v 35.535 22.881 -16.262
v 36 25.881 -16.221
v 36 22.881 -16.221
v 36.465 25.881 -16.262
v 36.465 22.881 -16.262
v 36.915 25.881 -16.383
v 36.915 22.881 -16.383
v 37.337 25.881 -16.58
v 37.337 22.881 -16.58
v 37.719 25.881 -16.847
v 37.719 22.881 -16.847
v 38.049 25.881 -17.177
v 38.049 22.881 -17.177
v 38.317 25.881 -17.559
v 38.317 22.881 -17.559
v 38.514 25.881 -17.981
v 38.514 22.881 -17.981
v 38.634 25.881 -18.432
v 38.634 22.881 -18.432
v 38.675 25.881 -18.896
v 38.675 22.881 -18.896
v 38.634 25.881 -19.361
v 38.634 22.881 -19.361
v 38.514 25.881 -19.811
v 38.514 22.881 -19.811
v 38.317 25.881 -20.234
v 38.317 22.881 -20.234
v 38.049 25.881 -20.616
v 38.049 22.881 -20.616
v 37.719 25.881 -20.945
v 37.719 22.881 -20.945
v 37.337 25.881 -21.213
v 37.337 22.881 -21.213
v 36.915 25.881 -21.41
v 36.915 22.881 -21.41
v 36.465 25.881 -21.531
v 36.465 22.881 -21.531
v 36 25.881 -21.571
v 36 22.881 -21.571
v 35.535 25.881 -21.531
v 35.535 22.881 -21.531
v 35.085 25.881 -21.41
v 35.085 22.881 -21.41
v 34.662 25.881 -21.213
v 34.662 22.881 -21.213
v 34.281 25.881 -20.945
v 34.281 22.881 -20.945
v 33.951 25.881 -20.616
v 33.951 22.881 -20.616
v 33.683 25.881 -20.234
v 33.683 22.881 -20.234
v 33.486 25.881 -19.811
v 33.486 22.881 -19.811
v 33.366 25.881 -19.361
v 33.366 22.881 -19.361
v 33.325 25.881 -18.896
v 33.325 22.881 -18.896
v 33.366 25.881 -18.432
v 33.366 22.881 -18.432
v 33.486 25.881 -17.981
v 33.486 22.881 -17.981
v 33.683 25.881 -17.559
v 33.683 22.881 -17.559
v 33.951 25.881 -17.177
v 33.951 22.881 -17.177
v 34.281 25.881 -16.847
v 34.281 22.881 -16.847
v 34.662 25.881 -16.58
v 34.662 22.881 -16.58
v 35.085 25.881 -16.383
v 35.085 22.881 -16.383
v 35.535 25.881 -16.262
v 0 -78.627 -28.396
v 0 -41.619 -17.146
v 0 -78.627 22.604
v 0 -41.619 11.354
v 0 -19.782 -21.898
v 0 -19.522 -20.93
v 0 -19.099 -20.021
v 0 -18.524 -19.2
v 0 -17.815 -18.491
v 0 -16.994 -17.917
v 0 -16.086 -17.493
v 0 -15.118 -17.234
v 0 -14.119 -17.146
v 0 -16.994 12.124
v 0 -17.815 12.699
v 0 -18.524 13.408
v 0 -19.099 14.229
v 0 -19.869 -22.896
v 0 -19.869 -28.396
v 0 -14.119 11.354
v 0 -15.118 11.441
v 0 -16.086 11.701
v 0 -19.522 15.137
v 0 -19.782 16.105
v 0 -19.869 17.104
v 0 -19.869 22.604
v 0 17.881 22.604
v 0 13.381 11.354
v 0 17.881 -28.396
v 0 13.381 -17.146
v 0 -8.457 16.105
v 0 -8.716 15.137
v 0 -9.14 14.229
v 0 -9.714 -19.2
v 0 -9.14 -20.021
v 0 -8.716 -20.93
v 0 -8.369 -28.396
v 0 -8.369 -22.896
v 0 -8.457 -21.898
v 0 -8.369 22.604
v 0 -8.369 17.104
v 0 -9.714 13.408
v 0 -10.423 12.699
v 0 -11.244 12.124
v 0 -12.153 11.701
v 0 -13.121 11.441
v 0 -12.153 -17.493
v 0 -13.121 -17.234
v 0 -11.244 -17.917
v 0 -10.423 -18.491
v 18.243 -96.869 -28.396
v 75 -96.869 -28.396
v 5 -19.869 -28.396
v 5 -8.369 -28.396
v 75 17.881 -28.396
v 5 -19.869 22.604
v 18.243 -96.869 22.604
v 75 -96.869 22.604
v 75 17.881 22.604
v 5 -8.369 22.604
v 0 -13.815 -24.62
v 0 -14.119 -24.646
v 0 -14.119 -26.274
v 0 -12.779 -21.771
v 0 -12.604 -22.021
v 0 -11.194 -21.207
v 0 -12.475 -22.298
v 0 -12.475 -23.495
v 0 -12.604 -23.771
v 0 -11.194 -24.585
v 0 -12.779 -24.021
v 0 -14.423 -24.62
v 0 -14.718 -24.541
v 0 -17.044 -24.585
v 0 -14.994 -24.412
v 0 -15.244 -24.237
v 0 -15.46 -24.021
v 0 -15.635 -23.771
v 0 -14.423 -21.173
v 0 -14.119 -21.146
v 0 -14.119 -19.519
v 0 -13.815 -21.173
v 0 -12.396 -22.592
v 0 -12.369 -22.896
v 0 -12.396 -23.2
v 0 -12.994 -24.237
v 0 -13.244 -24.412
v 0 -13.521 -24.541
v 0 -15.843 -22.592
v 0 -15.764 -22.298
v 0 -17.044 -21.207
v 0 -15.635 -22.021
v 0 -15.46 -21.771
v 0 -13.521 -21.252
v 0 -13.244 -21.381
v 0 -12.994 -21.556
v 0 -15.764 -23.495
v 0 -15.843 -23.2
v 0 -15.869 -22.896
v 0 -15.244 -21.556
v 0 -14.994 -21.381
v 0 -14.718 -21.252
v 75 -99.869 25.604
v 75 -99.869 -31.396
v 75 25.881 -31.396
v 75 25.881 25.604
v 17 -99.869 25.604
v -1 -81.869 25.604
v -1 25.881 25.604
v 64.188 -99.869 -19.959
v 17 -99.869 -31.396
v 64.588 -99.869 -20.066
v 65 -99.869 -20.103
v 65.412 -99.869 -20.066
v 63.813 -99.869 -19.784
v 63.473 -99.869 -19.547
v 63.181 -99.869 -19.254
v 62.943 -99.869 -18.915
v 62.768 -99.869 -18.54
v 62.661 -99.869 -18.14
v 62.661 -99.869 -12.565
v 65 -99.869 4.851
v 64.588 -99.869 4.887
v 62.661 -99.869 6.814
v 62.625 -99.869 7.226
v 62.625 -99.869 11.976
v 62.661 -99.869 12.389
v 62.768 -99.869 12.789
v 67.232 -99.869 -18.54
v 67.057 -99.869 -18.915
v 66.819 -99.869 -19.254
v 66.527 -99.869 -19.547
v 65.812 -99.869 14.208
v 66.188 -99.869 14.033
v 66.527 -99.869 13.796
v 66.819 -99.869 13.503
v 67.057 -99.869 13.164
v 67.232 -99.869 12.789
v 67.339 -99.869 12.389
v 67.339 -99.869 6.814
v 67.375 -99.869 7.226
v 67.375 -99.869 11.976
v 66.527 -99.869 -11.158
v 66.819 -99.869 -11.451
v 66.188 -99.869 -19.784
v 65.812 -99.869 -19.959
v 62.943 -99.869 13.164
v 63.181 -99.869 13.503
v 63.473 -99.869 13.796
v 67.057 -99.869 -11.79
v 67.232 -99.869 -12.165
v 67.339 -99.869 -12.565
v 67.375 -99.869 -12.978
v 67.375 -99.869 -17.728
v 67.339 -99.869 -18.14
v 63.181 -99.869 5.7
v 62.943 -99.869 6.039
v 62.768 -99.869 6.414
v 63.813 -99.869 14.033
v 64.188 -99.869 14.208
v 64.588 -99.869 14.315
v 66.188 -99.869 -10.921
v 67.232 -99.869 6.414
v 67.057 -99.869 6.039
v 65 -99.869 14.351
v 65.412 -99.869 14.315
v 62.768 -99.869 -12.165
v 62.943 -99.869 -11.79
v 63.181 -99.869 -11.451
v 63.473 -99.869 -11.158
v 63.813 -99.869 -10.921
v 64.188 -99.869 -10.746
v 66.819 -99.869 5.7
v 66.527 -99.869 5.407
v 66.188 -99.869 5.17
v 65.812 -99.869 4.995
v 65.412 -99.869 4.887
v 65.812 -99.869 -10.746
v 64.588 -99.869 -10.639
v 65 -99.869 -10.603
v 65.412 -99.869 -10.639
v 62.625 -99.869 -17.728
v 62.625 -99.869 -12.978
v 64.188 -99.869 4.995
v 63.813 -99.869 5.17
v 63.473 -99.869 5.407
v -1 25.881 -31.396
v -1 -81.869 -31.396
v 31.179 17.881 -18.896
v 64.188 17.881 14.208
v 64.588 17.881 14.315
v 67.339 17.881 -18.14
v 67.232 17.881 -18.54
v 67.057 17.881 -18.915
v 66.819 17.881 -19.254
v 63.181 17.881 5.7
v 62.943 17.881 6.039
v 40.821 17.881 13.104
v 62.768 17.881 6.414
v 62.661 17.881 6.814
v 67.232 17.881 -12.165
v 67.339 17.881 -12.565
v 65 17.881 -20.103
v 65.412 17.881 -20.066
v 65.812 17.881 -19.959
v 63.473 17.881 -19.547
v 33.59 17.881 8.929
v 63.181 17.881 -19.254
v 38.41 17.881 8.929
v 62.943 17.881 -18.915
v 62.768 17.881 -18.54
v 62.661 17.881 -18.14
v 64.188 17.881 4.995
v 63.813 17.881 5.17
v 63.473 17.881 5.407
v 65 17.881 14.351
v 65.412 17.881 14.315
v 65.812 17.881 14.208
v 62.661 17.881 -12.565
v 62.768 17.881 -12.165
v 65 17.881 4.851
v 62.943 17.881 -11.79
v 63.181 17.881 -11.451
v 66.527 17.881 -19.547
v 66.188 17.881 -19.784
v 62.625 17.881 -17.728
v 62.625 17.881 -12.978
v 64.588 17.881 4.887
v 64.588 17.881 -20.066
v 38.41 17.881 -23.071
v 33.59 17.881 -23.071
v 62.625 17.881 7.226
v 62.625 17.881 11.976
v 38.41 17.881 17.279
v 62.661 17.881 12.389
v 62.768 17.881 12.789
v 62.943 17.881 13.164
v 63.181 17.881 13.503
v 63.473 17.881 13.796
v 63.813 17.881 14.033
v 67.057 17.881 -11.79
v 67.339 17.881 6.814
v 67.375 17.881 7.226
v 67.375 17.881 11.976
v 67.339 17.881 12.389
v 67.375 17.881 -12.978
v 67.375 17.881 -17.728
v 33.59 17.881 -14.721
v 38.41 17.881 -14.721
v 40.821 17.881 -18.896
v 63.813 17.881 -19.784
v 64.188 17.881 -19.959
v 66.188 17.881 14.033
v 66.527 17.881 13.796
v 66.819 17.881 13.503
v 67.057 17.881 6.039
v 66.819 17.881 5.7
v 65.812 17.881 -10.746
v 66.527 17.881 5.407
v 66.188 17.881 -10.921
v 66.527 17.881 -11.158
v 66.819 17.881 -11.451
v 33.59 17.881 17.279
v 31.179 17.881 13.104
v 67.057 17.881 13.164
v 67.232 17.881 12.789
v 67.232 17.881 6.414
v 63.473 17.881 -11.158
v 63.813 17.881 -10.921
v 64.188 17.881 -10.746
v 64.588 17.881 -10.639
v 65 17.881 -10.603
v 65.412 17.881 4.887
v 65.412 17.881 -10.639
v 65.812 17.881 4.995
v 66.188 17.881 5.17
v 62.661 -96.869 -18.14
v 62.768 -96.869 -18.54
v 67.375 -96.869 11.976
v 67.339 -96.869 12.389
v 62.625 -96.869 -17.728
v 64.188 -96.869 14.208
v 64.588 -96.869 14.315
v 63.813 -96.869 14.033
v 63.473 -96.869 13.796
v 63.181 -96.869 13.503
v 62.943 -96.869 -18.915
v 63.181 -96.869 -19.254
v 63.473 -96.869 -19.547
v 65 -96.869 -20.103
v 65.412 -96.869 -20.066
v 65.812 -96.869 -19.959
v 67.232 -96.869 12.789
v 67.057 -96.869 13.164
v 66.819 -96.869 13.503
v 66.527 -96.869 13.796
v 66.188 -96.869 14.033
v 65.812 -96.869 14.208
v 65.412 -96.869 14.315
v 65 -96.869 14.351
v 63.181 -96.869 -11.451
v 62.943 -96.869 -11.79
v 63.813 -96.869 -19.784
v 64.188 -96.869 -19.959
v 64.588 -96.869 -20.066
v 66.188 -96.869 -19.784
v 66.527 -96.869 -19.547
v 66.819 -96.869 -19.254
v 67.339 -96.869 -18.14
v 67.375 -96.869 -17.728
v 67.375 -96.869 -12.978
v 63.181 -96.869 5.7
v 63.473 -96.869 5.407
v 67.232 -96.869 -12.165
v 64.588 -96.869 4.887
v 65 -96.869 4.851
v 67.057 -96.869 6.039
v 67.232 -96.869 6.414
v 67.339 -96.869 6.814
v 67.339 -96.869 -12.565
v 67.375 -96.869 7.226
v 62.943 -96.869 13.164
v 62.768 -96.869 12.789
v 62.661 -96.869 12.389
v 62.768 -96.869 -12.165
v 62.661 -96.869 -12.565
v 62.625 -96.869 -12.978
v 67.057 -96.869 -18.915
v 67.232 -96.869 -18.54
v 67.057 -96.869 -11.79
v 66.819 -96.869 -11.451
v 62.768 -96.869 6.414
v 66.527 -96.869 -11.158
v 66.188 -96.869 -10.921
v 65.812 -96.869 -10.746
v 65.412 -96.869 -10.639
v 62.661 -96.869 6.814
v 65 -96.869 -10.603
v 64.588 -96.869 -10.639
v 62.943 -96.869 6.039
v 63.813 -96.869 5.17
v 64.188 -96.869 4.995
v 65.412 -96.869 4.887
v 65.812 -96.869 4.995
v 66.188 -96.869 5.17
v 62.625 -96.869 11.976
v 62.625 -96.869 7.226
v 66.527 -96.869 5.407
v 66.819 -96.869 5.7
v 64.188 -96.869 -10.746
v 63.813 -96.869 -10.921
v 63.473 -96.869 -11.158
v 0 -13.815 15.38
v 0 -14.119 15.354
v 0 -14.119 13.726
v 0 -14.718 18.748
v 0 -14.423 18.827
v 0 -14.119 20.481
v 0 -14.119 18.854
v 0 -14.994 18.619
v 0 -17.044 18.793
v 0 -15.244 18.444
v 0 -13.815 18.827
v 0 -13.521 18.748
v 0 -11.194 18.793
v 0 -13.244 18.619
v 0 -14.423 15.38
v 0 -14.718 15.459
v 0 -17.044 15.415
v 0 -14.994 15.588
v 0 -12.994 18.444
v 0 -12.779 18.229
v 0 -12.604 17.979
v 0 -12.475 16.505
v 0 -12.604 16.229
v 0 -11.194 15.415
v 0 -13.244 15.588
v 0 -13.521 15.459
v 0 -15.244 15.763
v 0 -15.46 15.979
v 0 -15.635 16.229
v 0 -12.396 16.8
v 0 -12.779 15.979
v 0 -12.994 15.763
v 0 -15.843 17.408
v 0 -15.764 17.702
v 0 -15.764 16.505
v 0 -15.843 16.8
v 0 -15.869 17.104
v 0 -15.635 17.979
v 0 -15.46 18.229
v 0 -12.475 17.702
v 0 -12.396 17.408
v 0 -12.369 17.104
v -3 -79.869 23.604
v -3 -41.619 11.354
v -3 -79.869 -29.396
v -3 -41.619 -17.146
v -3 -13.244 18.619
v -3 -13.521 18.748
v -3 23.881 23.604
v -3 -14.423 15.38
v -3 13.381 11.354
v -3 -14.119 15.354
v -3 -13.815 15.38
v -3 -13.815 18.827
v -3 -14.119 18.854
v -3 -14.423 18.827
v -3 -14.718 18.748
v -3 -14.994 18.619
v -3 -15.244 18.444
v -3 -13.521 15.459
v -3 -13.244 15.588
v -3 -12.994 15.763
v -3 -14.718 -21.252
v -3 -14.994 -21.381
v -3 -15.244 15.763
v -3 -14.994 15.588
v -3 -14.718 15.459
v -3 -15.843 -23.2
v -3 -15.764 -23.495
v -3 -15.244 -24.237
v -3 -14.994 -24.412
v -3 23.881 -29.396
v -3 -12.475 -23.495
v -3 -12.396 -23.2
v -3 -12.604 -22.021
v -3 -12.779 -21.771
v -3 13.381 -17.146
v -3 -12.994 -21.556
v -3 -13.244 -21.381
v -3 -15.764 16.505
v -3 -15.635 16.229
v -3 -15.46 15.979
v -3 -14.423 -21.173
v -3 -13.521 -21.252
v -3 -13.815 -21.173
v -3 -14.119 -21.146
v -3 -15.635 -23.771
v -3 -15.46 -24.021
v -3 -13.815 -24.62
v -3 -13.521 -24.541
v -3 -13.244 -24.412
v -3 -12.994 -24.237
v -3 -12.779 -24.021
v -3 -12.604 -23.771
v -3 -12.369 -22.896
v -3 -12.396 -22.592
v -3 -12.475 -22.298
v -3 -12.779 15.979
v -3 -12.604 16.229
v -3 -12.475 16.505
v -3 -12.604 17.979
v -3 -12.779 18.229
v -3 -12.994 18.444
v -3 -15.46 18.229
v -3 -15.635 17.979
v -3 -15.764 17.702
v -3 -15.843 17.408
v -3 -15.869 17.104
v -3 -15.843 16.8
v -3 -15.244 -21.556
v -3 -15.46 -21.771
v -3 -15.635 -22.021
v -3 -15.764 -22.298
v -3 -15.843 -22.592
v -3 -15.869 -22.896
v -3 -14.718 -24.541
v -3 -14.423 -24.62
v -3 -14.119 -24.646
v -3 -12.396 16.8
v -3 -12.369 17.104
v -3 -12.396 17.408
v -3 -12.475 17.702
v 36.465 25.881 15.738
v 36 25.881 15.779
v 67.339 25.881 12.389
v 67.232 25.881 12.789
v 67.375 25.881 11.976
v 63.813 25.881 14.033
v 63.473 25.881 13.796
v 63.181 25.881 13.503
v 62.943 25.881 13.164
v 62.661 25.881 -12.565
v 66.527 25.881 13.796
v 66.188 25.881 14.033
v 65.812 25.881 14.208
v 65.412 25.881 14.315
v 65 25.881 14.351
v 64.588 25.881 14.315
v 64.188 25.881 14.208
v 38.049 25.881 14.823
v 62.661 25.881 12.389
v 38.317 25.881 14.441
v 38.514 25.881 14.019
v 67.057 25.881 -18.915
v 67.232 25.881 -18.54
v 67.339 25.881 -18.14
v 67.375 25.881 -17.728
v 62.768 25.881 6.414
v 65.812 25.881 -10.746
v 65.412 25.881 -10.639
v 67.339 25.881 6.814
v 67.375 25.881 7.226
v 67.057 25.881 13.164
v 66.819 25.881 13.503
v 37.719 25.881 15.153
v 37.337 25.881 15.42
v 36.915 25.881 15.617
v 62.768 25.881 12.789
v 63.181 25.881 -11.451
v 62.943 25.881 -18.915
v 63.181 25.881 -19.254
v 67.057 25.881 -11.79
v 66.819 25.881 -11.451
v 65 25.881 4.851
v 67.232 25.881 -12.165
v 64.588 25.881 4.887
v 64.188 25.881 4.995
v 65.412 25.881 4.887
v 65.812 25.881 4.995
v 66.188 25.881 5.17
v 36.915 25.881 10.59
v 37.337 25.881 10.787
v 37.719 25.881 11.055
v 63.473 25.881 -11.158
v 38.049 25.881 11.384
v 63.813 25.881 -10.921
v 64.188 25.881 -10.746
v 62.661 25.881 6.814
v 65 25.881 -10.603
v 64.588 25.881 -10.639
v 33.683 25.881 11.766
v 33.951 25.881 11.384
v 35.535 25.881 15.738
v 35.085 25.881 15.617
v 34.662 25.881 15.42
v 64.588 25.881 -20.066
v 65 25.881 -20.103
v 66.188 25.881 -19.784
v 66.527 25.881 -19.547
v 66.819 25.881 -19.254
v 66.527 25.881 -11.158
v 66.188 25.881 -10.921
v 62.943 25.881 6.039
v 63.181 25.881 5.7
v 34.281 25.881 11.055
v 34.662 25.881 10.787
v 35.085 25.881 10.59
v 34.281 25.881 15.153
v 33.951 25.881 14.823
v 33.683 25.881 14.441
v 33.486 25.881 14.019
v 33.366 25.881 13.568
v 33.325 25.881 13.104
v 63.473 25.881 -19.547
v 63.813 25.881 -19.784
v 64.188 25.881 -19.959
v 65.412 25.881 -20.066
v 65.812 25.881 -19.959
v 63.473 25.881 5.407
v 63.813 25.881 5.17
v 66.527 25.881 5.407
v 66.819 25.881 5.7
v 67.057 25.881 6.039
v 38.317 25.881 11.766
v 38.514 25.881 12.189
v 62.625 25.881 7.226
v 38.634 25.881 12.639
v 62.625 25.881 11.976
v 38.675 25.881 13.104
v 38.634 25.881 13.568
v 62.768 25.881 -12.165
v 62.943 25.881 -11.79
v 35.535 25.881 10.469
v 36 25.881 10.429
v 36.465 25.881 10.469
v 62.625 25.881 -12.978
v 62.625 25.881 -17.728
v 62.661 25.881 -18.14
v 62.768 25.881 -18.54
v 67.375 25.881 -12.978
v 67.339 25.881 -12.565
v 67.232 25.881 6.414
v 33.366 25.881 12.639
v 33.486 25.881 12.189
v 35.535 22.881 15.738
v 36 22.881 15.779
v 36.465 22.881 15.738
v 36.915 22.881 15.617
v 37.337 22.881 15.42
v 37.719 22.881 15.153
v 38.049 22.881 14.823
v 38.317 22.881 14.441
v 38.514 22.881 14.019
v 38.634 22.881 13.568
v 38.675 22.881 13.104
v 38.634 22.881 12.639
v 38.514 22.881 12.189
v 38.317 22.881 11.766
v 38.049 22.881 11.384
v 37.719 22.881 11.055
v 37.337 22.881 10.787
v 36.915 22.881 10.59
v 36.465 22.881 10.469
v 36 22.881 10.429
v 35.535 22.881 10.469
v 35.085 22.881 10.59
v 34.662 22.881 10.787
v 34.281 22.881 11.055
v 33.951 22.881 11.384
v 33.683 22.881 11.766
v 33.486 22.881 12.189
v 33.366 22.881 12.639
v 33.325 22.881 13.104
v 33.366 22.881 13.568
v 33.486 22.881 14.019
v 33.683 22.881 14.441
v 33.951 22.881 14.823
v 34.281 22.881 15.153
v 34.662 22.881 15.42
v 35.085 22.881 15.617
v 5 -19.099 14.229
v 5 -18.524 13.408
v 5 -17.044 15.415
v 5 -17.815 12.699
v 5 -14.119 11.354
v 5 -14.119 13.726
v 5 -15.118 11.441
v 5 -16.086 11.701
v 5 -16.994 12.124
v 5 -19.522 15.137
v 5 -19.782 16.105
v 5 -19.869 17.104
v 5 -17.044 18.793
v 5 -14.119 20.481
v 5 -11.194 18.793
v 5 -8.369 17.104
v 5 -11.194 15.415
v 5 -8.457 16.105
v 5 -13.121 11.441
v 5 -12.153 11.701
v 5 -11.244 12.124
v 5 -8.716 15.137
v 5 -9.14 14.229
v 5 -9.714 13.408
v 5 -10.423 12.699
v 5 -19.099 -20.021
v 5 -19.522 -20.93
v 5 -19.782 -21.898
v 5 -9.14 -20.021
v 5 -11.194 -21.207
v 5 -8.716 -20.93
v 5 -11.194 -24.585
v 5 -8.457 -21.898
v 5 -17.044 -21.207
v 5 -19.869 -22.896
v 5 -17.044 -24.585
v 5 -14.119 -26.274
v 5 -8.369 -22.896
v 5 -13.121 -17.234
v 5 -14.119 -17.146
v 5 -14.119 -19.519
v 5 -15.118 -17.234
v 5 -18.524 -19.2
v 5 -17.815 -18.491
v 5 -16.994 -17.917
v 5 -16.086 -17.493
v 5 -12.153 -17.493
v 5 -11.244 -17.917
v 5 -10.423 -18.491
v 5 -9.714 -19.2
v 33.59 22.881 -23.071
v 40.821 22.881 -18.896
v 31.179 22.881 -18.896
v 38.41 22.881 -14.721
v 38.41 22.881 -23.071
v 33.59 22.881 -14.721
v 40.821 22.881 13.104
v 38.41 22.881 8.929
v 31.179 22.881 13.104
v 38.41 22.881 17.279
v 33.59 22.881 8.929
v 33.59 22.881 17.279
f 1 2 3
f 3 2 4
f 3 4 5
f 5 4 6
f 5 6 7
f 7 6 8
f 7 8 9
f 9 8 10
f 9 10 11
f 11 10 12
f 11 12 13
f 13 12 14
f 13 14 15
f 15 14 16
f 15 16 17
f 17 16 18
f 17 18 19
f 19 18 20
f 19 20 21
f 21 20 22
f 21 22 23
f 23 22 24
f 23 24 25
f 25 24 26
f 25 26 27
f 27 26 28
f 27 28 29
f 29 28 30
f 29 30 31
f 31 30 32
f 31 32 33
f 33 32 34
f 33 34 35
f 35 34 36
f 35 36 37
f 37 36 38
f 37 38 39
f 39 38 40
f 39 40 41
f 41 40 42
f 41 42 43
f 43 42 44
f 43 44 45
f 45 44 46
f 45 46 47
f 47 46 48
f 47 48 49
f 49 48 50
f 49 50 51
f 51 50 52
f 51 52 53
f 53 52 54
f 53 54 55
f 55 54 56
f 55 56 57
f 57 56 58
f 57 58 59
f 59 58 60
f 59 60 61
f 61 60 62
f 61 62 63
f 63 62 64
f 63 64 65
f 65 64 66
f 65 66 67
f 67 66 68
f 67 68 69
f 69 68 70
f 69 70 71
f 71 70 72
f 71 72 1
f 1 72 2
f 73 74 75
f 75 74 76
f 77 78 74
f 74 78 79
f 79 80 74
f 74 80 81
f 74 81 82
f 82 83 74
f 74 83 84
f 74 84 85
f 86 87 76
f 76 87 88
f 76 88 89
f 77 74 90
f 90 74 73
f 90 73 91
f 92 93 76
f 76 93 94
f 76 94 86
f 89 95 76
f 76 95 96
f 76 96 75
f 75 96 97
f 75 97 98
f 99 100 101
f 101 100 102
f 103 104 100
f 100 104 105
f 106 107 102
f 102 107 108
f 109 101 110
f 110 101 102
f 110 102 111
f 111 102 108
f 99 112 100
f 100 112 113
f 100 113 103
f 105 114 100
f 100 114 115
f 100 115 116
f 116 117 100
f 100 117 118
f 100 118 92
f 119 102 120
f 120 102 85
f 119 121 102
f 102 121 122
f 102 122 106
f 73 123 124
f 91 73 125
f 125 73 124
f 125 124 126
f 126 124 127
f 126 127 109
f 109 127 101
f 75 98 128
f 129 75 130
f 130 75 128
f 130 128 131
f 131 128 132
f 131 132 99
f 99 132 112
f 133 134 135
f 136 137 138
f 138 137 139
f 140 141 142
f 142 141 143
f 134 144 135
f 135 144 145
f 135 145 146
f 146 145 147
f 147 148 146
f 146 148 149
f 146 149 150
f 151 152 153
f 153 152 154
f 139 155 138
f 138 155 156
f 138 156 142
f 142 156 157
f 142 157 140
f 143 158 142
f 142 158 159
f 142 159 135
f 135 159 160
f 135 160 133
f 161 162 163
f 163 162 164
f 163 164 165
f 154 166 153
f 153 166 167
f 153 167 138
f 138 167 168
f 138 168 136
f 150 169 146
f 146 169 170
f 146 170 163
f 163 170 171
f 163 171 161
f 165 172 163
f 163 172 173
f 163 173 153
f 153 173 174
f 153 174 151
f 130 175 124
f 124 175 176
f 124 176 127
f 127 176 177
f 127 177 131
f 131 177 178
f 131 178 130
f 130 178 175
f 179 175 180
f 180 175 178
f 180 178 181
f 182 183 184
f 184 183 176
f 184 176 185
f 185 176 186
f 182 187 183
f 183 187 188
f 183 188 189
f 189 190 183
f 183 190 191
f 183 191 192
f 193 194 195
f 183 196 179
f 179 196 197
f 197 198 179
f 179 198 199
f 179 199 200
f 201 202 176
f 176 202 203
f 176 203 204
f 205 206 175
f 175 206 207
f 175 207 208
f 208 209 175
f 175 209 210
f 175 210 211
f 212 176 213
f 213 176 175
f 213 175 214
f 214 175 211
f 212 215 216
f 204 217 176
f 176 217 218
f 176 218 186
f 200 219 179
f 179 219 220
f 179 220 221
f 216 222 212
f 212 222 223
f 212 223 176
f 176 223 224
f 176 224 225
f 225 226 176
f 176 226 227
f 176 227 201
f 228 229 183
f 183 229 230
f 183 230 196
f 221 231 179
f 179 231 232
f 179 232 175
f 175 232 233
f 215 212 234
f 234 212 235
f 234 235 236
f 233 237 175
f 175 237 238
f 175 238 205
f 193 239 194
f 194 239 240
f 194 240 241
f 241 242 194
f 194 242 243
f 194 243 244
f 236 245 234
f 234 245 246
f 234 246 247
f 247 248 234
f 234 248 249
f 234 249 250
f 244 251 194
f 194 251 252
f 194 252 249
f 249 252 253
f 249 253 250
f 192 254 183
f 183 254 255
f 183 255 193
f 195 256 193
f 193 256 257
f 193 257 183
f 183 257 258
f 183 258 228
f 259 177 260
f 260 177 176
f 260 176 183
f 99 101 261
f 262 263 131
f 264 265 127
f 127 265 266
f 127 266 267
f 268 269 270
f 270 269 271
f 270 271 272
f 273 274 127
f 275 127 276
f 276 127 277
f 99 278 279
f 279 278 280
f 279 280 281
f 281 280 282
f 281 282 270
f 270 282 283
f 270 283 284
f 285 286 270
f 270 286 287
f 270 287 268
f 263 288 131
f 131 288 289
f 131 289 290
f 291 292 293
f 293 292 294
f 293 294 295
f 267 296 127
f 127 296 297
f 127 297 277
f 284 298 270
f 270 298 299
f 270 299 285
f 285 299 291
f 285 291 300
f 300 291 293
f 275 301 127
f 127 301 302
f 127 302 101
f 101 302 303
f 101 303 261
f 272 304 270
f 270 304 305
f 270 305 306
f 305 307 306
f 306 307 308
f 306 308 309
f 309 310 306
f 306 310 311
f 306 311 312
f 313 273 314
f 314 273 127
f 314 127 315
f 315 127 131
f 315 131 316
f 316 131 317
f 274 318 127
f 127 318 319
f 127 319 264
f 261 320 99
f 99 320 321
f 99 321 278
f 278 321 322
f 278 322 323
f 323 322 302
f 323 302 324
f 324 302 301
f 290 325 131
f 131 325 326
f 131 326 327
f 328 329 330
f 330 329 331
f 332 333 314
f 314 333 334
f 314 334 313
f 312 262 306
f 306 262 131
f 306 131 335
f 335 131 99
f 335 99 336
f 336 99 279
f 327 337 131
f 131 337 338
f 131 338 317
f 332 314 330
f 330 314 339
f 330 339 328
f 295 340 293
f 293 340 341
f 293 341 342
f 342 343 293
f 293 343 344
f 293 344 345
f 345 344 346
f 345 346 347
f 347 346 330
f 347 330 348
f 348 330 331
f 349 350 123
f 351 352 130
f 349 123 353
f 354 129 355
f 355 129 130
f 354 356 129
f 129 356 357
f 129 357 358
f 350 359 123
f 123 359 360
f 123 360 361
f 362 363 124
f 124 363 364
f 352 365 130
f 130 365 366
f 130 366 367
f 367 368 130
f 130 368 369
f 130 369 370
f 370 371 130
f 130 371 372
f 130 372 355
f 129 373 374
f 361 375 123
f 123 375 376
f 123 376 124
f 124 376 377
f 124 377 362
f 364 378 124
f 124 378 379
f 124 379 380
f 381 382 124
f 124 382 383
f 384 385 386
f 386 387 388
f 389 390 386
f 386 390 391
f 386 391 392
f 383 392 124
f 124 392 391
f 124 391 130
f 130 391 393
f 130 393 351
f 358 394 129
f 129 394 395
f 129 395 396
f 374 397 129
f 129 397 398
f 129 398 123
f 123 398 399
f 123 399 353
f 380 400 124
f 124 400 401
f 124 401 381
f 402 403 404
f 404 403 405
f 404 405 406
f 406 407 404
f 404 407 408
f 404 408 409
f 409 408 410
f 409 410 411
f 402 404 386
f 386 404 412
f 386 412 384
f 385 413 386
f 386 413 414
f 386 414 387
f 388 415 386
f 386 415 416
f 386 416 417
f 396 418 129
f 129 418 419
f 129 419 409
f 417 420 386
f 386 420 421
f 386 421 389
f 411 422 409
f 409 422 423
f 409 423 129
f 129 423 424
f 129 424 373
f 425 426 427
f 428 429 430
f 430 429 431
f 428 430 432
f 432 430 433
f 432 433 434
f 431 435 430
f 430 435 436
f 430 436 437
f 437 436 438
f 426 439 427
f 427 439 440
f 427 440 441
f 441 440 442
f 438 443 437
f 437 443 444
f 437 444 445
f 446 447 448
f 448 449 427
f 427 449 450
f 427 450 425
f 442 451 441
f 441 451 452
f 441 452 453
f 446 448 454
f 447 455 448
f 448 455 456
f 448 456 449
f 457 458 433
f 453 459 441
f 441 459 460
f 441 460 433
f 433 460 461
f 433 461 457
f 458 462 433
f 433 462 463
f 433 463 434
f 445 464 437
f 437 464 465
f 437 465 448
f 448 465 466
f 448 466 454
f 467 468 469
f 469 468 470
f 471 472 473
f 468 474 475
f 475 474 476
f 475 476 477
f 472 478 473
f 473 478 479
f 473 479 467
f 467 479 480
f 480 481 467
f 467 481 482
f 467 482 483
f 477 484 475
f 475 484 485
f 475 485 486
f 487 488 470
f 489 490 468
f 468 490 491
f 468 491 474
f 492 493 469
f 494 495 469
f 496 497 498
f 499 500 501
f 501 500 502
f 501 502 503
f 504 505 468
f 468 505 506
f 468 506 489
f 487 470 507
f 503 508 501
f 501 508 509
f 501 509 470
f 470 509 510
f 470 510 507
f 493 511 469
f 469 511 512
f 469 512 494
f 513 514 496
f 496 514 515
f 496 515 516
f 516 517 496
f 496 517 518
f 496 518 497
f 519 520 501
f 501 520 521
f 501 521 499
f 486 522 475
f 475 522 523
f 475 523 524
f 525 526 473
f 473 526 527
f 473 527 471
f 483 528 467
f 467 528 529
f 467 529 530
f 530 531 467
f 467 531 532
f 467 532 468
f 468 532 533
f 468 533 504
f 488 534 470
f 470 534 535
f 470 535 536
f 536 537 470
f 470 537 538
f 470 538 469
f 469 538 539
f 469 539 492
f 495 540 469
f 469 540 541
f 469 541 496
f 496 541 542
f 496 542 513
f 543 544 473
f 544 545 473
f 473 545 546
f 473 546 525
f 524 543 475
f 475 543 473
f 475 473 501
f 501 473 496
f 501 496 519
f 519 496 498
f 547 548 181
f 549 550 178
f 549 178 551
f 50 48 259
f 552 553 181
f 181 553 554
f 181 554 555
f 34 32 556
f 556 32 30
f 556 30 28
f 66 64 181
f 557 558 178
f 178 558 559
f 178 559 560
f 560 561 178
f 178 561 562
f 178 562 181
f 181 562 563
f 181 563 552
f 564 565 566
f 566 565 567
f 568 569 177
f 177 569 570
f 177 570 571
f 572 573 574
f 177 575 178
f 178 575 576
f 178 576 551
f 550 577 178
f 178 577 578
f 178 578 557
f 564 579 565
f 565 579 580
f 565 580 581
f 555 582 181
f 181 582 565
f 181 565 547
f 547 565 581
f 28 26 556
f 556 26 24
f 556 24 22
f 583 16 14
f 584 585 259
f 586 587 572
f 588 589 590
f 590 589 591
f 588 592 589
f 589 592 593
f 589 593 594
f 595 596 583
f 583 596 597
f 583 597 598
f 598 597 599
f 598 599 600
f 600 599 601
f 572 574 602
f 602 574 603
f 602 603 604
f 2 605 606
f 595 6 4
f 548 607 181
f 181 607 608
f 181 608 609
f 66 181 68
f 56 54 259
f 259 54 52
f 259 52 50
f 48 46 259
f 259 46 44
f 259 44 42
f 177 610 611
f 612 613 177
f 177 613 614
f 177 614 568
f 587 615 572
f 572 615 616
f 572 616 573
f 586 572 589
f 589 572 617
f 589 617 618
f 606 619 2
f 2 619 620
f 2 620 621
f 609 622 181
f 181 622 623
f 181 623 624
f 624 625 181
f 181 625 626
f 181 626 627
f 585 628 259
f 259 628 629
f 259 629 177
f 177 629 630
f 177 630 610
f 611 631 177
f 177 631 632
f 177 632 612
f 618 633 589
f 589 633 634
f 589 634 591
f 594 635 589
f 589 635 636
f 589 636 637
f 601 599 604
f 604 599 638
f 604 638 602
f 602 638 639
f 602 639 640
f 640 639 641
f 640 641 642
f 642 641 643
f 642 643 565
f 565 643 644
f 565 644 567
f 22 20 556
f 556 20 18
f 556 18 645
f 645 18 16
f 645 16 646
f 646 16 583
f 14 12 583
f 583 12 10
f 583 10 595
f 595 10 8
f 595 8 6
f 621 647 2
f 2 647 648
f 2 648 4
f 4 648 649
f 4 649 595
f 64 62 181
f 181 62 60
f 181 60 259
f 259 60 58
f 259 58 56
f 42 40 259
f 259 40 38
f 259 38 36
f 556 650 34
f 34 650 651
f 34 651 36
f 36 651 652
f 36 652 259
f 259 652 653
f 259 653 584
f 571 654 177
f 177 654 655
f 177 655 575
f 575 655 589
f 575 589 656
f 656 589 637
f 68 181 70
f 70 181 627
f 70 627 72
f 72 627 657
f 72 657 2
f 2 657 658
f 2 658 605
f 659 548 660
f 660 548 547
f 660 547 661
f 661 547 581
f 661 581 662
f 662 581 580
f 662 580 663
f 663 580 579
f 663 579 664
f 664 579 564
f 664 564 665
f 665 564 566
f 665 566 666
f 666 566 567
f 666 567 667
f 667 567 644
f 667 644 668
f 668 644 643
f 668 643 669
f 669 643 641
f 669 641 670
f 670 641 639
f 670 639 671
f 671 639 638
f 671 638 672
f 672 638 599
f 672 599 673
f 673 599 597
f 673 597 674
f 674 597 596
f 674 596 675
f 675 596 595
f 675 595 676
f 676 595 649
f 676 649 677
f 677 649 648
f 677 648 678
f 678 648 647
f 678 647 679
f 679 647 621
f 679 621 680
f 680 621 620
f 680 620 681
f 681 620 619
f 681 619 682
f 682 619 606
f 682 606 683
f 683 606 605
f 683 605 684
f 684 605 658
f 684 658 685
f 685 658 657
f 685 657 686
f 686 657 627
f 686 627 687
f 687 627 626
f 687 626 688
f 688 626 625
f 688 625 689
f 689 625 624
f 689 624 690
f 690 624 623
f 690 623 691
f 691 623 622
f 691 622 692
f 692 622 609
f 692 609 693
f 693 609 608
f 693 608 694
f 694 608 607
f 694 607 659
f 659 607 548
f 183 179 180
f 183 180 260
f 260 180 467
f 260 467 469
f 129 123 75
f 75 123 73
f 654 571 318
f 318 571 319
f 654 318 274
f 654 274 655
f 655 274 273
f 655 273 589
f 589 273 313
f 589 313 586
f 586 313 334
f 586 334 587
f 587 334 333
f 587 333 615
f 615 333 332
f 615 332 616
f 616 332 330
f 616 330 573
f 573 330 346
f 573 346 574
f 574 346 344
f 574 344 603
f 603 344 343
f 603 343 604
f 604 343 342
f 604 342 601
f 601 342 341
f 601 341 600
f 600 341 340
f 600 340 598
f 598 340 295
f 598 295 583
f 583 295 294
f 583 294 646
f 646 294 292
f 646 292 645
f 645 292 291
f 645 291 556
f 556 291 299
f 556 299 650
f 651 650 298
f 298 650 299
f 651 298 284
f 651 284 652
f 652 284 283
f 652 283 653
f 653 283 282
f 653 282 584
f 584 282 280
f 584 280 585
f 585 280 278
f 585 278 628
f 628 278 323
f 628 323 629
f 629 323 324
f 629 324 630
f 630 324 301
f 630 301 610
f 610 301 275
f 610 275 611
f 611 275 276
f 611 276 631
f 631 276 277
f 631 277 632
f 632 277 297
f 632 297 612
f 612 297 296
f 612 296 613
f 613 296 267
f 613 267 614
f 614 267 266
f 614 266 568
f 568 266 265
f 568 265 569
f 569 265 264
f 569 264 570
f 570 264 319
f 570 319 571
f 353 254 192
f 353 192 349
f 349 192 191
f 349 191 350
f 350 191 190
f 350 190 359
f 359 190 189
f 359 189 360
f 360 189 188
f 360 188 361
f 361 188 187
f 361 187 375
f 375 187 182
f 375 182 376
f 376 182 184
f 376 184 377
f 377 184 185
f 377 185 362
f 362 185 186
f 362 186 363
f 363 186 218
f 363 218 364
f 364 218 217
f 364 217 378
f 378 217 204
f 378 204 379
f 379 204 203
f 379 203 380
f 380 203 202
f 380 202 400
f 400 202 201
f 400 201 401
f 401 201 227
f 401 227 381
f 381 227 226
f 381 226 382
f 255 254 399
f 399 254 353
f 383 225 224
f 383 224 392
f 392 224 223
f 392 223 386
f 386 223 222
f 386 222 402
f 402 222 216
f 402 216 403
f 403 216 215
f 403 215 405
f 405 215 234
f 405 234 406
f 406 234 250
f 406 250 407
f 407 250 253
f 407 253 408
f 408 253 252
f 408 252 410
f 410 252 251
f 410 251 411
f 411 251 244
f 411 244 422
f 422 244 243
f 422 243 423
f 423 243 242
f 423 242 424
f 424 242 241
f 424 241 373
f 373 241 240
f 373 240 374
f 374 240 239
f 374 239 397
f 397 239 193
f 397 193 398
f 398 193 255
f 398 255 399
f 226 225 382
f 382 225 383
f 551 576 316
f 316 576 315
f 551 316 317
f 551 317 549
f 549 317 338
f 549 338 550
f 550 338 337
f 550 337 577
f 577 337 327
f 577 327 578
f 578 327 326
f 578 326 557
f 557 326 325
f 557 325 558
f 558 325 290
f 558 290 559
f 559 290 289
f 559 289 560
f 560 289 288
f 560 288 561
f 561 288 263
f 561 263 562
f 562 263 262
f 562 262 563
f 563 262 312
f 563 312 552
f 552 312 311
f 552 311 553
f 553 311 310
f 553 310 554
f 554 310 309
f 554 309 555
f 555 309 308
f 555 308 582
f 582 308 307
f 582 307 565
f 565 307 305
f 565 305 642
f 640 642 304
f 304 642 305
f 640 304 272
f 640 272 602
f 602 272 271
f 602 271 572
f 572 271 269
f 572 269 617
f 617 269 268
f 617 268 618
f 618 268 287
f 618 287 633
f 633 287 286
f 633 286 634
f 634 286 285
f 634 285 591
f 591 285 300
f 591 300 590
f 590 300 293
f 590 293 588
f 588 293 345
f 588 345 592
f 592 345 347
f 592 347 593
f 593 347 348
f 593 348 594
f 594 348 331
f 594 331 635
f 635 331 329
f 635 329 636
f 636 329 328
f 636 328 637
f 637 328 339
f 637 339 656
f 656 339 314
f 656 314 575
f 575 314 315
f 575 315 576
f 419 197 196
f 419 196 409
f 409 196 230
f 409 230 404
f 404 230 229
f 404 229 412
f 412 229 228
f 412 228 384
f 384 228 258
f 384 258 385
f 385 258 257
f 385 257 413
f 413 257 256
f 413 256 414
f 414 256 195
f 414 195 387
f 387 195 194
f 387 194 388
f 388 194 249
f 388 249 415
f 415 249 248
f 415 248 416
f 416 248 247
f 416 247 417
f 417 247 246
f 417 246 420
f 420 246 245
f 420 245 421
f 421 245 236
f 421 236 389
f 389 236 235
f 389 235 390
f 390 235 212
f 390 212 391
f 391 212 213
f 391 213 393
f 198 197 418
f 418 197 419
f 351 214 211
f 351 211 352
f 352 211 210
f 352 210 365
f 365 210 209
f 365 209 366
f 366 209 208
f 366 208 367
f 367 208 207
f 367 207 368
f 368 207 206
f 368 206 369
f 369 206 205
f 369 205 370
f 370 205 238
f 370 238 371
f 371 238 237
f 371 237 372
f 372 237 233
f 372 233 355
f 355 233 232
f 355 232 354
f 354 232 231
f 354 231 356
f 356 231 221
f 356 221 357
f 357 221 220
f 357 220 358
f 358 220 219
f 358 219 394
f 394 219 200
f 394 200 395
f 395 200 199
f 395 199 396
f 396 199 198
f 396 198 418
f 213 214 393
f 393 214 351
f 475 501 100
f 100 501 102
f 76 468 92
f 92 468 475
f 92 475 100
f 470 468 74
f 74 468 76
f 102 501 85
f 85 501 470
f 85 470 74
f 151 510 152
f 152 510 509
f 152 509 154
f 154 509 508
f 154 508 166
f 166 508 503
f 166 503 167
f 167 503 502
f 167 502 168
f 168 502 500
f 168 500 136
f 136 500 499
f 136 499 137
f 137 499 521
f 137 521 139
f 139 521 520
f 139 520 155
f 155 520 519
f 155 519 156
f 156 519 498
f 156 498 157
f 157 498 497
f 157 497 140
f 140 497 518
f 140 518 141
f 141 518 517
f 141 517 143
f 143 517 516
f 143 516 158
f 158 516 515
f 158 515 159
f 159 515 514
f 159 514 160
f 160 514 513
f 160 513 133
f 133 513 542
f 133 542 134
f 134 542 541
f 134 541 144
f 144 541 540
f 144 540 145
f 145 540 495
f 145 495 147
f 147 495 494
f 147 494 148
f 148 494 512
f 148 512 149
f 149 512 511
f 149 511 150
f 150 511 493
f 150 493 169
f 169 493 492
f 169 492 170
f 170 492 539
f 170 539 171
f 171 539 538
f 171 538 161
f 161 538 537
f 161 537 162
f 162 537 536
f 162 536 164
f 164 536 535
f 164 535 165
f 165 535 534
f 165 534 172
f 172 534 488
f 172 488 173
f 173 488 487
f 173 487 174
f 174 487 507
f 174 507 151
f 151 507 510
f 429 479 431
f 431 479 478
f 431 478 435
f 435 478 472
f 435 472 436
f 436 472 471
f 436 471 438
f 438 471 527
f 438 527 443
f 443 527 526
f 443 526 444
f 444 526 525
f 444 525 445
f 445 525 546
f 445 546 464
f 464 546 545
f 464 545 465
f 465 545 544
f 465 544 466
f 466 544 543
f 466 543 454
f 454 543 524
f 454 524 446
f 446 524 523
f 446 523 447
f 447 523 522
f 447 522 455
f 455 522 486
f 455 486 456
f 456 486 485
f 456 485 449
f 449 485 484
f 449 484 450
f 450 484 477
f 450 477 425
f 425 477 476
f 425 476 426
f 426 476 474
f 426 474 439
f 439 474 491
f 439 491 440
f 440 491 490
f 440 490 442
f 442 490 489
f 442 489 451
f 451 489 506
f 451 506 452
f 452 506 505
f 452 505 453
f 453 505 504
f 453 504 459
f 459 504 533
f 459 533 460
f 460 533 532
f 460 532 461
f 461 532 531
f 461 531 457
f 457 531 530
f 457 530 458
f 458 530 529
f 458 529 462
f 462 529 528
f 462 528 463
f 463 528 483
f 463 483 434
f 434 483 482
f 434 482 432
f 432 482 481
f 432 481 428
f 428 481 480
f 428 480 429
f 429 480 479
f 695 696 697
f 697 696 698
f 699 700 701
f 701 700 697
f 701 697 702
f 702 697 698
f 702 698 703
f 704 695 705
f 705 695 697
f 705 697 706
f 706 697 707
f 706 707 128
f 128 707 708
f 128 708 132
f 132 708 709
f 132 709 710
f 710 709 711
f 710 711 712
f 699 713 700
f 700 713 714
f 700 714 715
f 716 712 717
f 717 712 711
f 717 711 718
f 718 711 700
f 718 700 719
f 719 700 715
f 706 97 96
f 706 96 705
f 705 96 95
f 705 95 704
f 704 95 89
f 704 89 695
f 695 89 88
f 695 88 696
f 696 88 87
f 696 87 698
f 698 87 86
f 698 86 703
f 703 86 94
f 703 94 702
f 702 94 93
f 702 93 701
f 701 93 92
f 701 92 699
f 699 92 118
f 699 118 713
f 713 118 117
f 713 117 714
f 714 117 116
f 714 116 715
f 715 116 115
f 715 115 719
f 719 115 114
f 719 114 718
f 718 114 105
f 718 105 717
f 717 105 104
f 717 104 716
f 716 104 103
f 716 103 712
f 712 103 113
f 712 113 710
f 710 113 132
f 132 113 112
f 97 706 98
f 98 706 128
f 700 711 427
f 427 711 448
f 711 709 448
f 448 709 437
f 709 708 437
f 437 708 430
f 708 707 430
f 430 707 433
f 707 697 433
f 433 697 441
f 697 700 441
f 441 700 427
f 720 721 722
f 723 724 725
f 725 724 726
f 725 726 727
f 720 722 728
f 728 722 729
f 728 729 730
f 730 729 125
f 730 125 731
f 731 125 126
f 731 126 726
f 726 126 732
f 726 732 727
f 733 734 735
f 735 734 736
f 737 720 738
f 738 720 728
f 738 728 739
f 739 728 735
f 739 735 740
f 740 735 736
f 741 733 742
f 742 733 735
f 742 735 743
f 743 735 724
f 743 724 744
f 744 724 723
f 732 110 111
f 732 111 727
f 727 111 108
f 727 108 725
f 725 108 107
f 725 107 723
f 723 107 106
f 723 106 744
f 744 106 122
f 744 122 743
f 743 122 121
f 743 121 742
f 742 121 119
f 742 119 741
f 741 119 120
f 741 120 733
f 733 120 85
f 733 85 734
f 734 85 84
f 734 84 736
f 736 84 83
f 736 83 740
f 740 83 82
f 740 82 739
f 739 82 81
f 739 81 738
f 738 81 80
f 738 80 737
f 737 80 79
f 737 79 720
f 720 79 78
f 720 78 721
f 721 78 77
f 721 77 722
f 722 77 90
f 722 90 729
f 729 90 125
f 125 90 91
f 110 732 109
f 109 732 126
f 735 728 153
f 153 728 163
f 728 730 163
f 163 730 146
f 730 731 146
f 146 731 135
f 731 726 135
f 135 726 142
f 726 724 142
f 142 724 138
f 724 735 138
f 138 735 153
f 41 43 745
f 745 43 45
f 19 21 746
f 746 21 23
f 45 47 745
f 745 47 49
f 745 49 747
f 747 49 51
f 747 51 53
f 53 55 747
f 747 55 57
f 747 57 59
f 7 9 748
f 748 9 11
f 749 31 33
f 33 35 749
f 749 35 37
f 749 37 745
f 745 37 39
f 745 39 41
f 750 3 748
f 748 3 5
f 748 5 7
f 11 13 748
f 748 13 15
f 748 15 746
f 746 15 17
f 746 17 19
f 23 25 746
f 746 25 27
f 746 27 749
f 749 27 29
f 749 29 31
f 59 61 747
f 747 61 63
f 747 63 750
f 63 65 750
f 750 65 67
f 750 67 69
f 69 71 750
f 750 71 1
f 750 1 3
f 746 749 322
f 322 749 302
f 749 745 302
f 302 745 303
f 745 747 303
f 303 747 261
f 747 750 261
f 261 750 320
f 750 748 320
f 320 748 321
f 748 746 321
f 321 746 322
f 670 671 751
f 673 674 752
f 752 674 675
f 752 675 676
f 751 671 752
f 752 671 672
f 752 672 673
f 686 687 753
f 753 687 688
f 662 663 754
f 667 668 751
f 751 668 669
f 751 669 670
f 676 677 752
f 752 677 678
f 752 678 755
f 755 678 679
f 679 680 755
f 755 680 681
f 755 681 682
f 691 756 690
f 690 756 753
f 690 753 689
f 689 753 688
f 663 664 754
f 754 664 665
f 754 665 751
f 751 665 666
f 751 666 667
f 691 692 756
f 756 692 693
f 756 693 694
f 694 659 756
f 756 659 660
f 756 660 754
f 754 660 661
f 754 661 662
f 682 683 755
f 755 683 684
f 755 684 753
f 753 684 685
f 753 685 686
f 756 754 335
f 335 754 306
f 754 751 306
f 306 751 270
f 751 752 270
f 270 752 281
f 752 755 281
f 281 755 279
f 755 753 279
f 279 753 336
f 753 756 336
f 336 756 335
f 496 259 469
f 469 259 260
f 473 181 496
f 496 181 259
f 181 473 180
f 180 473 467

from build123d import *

# Parameters (mm, degrees)
SKETCH2_W           = 57
SKETCH2_H           = 120.75
SKETCH2_W_2         = 51
SKETCH2_H_2         = 114.75
BOSS_EXTRUDE1_DEPTH = 75
SKETCH3_W           = 57
SKETCH3_H           = 120.75
BOSS_EXTRUDE2_DEPTH = 3
SKETCH4_W           = 78
SKETCH4_H           = 57
BOSS_EXTRUDE3_DEPTH = 5
SKETCH6_R           = 2.675
CUT_EXTRUDE2_DEPTH  = 10
CUT_EXTRUDE3_DEPTH  = 58
BOSS_EXTRUDE4_REACH = 59
CUT_EXTRUDE7_DEPTH  = 126.75
SKETCH18_R          = 1.75
SKETCH18_W          = 28.5
SKETCH18_H          = 55
CUT_EXTRUDE8_DEPTH  = 10
BOSS_EXTRUDE6_DEPTH = 5
CUT_EXTRUDE9_DEPTH  = 5
CHAMFER1_SIZE       = 2


with BuildPart() as part:
    # Sketch2 → Boss-Extrude1 (new body)
    with BuildSketch(Plane(origin=(0, 0, 0), x_dir=(0, 0, -1), z_dir=(1, 0, 0))):
        with Locations((2.896243414, -39.494242434)):
            Rectangle(SKETCH2_W, SKETCH2_H)
        with Locations((2.896243414, -39.494242434)):
            Rectangle(SKETCH2_W_2, SKETCH2_H_2, mode=Mode.SUBTRACT)
    extrude(amount=BOSS_EXTRUDE1_DEPTH)

    # Sketch3 → Boss-Extrude2 (add)
    with BuildSketch(Plane.ZY):
        with Locations((-2.896243414, -39.494242434)):
            Rectangle(SKETCH3_W, SKETCH3_H)
    extrude(amount=BOSS_EXTRUDE2_DEPTH)

    # Sketch4 → Boss-Extrude3 (add)
    with BuildSketch(Plane(origin=(0, 20.880757566, 0), x_dir=(1, 0, 0), z_dir=(0, 1, 0))):
        with Locations((36, 2.896243414)):
            Rectangle(SKETCH4_W, SKETCH4_H)
    extrude(amount=BOSS_EXTRUDE3_DEPTH)

    # Sketch6 → Cut-Extrude2 (cut)
    with BuildSketch(Plane(origin=(0, 25.880757566, 0), x_dir=(1, 0, 0), z_dir=(0, 1, 0))):
        with Locations((36, 18.896243414)):
            Circle(SKETCH6_R)
        with Locations((36, -13.103756586)):
            Circle(SKETCH6_R)
    extrude(amount=-CUT_EXTRUDE2_DEPTH, mode=Mode.SUBTRACT)

    # Sketch8 → Cut-Extrude3 (cut, through all)
    with BuildSketch(Plane(origin=(0, 0, -31.396243414), x_dir=(-1, 0, 0), z_dir=(0, 0, -1))):
        Polygon((3, -99.869242434), (3, -79.869242434), (-17, -99.869242434), align=None)
    extrude(amount=-CUT_EXTRUDE3_DEPTH, mode=Mode.SUBTRACT)

    # Sketch9 → Boss-Extrude4 (add, up to next)
    with BuildSketch(Plane.XY.offset(25.603756586), mode=Mode.PRIVATE) as boss_extrude4_sk1:
        Polygon((-3, -79.869242434), (17, -99.869242434), (21.242640687, -99.869242434), (-3, -75.626601747), align=None)
    boss_extrude4_tool1 = extrude(boss_extrude4_sk1.sketch, amount=-BOSS_EXTRUDE4_REACH, mode=Mode.PRIVATE) - part.part
    add(boss_extrude4_tool1.solids().sort_by_distance((8.094564, -88.774678, 25.603757))[0])

    # Sketch15 → Cut-Extrude7 (cut, through all)
    with BuildSketch(Plane.XZ.offset(99.869242434)):
        with BuildLine():
            Line((62.625, 7.226342188), (62.625, 11.976342188))
            ThreePointArc((62.625, 11.976342188), (65, 14.351342188), (67.375, 11.976342188))
            Line((67.375, 11.976342188), (67.375, 7.226342188))
            ThreePointArc((67.375, 7.226342188), (65, 4.851342188), (62.625, 7.226342188))
        make_face()
        with BuildLine():
            Line((62.625, -17.72757696), (62.625, -12.97757696))
            ThreePointArc((62.625, -12.97757696), (65, -10.60257696), (67.375, -12.97757696))
            Line((67.375, -12.97757696), (67.375, -17.72757696))
            ThreePointArc((67.375, -17.72757696), (65, -20.10257696), (62.625, -17.72757696))
        make_face()
    extrude(amount=-CUT_EXTRUDE7_DEPTH, mode=Mode.SUBTRACT)

    # Sketch18 → Cut-Extrude8 (cut)
    with BuildSketch(Plane.ZY.offset(3)):
        with Locations((-22.896243414, -14.119242434)):
            Circle(SKETCH18_R)
        with Locations((17.103756586, -14.119242434)):
            Circle(SKETCH18_R)
        with Locations((-2.896243414, -14.119242434)):
            Rectangle(SKETCH18_W, SKETCH18_H)
    extrude(amount=-CUT_EXTRUDE8_DEPTH, mode=Mode.SUBTRACT)

    # Sketch21 → Boss-Extrude6 (add)
    with BuildSketch(Plane(origin=(0, 0, 0), x_dir=(0, 0, -1), z_dir=(1, 0, 0))):
        with BuildLine():
            Line((22.896243414, -19.869242434), (28.646243414, -19.869242434))
            Line((28.646243414, -19.869242434), (28.646243414, -8.369242434))
            Line((28.646243414, -8.369242434), (22.896243414, -8.369242434))
            ThreePointArc((22.896243414, -8.369242434), (17.146243414, -14.119242434), (22.896243414, -19.869242434))
        make_face()
        Polygon((19.518744339, -14.119242434), (21.207493877, -11.194242434), (24.584992952, -11.194242434), (26.273742489, -14.119242434), (24.584992952, -17.044242434), (21.207493877, -17.044242434), align=None, mode=Mode.SUBTRACT)
        with BuildLine():
            Line((-17.103756586, -19.869242434), (-22.853756586, -19.869242434))
            Line((-22.853756586, -19.869242434), (-22.853756586, -8.369242434))
            Line((-22.853756586, -8.369242434), (-17.103756586, -8.369242434))
            ThreePointArc((-17.103756586, -8.369242434), (-11.353756586, -14.119242434), (-17.103756586, -19.869242434))
        make_face()
        Polygon((-15.415007048, -11.194242434), (-18.792506123, -11.194242434), (-20.481255661, -14.119242434), (-18.792506123, -17.044242434), (-15.415007048, -17.044242434), (-13.726257511, -14.119242434), align=None, mode=Mode.SUBTRACT)
    extrude(amount=BOSS_EXTRUDE6_DEPTH)

    # Sketch22 → Cut-Extrude9 (cut)
    with BuildSketch(Plane.XZ.offset(-17.880757566)):
        Polygon((40.820874748, -18.896243414), (38.410437374, -14.721243414), (33.589562626, -14.721243414), (31.179125252, -18.896243414), (33.589562626, -23.071243414), (38.410437374, -23.071243414), align=None)
        Polygon((38.410437374, 17.278756586), (40.820874748, 13.103756586), (38.410437374, 8.928756586), (33.589562626, 8.928756586), (31.179125252, 13.103756586), (33.589562626, 17.278756586), align=None)
    extrude(amount=-CUT_EXTRUDE9_DEPTH, mode=Mode.SUBTRACT)

    # Chamfer1
    chamfer1_edges = [part.edges().sort_by_distance(p)[0] for p in [
        (-3, -26.994242434, -31.396243414),
        (-3, 25.880757566, -2.896243414),
        (-3, -26.994242434, 25.603756586),
    ]]
    chamfer(chamfer1_edges, length=CHAMFER1_SIZE)


solid = part.part
